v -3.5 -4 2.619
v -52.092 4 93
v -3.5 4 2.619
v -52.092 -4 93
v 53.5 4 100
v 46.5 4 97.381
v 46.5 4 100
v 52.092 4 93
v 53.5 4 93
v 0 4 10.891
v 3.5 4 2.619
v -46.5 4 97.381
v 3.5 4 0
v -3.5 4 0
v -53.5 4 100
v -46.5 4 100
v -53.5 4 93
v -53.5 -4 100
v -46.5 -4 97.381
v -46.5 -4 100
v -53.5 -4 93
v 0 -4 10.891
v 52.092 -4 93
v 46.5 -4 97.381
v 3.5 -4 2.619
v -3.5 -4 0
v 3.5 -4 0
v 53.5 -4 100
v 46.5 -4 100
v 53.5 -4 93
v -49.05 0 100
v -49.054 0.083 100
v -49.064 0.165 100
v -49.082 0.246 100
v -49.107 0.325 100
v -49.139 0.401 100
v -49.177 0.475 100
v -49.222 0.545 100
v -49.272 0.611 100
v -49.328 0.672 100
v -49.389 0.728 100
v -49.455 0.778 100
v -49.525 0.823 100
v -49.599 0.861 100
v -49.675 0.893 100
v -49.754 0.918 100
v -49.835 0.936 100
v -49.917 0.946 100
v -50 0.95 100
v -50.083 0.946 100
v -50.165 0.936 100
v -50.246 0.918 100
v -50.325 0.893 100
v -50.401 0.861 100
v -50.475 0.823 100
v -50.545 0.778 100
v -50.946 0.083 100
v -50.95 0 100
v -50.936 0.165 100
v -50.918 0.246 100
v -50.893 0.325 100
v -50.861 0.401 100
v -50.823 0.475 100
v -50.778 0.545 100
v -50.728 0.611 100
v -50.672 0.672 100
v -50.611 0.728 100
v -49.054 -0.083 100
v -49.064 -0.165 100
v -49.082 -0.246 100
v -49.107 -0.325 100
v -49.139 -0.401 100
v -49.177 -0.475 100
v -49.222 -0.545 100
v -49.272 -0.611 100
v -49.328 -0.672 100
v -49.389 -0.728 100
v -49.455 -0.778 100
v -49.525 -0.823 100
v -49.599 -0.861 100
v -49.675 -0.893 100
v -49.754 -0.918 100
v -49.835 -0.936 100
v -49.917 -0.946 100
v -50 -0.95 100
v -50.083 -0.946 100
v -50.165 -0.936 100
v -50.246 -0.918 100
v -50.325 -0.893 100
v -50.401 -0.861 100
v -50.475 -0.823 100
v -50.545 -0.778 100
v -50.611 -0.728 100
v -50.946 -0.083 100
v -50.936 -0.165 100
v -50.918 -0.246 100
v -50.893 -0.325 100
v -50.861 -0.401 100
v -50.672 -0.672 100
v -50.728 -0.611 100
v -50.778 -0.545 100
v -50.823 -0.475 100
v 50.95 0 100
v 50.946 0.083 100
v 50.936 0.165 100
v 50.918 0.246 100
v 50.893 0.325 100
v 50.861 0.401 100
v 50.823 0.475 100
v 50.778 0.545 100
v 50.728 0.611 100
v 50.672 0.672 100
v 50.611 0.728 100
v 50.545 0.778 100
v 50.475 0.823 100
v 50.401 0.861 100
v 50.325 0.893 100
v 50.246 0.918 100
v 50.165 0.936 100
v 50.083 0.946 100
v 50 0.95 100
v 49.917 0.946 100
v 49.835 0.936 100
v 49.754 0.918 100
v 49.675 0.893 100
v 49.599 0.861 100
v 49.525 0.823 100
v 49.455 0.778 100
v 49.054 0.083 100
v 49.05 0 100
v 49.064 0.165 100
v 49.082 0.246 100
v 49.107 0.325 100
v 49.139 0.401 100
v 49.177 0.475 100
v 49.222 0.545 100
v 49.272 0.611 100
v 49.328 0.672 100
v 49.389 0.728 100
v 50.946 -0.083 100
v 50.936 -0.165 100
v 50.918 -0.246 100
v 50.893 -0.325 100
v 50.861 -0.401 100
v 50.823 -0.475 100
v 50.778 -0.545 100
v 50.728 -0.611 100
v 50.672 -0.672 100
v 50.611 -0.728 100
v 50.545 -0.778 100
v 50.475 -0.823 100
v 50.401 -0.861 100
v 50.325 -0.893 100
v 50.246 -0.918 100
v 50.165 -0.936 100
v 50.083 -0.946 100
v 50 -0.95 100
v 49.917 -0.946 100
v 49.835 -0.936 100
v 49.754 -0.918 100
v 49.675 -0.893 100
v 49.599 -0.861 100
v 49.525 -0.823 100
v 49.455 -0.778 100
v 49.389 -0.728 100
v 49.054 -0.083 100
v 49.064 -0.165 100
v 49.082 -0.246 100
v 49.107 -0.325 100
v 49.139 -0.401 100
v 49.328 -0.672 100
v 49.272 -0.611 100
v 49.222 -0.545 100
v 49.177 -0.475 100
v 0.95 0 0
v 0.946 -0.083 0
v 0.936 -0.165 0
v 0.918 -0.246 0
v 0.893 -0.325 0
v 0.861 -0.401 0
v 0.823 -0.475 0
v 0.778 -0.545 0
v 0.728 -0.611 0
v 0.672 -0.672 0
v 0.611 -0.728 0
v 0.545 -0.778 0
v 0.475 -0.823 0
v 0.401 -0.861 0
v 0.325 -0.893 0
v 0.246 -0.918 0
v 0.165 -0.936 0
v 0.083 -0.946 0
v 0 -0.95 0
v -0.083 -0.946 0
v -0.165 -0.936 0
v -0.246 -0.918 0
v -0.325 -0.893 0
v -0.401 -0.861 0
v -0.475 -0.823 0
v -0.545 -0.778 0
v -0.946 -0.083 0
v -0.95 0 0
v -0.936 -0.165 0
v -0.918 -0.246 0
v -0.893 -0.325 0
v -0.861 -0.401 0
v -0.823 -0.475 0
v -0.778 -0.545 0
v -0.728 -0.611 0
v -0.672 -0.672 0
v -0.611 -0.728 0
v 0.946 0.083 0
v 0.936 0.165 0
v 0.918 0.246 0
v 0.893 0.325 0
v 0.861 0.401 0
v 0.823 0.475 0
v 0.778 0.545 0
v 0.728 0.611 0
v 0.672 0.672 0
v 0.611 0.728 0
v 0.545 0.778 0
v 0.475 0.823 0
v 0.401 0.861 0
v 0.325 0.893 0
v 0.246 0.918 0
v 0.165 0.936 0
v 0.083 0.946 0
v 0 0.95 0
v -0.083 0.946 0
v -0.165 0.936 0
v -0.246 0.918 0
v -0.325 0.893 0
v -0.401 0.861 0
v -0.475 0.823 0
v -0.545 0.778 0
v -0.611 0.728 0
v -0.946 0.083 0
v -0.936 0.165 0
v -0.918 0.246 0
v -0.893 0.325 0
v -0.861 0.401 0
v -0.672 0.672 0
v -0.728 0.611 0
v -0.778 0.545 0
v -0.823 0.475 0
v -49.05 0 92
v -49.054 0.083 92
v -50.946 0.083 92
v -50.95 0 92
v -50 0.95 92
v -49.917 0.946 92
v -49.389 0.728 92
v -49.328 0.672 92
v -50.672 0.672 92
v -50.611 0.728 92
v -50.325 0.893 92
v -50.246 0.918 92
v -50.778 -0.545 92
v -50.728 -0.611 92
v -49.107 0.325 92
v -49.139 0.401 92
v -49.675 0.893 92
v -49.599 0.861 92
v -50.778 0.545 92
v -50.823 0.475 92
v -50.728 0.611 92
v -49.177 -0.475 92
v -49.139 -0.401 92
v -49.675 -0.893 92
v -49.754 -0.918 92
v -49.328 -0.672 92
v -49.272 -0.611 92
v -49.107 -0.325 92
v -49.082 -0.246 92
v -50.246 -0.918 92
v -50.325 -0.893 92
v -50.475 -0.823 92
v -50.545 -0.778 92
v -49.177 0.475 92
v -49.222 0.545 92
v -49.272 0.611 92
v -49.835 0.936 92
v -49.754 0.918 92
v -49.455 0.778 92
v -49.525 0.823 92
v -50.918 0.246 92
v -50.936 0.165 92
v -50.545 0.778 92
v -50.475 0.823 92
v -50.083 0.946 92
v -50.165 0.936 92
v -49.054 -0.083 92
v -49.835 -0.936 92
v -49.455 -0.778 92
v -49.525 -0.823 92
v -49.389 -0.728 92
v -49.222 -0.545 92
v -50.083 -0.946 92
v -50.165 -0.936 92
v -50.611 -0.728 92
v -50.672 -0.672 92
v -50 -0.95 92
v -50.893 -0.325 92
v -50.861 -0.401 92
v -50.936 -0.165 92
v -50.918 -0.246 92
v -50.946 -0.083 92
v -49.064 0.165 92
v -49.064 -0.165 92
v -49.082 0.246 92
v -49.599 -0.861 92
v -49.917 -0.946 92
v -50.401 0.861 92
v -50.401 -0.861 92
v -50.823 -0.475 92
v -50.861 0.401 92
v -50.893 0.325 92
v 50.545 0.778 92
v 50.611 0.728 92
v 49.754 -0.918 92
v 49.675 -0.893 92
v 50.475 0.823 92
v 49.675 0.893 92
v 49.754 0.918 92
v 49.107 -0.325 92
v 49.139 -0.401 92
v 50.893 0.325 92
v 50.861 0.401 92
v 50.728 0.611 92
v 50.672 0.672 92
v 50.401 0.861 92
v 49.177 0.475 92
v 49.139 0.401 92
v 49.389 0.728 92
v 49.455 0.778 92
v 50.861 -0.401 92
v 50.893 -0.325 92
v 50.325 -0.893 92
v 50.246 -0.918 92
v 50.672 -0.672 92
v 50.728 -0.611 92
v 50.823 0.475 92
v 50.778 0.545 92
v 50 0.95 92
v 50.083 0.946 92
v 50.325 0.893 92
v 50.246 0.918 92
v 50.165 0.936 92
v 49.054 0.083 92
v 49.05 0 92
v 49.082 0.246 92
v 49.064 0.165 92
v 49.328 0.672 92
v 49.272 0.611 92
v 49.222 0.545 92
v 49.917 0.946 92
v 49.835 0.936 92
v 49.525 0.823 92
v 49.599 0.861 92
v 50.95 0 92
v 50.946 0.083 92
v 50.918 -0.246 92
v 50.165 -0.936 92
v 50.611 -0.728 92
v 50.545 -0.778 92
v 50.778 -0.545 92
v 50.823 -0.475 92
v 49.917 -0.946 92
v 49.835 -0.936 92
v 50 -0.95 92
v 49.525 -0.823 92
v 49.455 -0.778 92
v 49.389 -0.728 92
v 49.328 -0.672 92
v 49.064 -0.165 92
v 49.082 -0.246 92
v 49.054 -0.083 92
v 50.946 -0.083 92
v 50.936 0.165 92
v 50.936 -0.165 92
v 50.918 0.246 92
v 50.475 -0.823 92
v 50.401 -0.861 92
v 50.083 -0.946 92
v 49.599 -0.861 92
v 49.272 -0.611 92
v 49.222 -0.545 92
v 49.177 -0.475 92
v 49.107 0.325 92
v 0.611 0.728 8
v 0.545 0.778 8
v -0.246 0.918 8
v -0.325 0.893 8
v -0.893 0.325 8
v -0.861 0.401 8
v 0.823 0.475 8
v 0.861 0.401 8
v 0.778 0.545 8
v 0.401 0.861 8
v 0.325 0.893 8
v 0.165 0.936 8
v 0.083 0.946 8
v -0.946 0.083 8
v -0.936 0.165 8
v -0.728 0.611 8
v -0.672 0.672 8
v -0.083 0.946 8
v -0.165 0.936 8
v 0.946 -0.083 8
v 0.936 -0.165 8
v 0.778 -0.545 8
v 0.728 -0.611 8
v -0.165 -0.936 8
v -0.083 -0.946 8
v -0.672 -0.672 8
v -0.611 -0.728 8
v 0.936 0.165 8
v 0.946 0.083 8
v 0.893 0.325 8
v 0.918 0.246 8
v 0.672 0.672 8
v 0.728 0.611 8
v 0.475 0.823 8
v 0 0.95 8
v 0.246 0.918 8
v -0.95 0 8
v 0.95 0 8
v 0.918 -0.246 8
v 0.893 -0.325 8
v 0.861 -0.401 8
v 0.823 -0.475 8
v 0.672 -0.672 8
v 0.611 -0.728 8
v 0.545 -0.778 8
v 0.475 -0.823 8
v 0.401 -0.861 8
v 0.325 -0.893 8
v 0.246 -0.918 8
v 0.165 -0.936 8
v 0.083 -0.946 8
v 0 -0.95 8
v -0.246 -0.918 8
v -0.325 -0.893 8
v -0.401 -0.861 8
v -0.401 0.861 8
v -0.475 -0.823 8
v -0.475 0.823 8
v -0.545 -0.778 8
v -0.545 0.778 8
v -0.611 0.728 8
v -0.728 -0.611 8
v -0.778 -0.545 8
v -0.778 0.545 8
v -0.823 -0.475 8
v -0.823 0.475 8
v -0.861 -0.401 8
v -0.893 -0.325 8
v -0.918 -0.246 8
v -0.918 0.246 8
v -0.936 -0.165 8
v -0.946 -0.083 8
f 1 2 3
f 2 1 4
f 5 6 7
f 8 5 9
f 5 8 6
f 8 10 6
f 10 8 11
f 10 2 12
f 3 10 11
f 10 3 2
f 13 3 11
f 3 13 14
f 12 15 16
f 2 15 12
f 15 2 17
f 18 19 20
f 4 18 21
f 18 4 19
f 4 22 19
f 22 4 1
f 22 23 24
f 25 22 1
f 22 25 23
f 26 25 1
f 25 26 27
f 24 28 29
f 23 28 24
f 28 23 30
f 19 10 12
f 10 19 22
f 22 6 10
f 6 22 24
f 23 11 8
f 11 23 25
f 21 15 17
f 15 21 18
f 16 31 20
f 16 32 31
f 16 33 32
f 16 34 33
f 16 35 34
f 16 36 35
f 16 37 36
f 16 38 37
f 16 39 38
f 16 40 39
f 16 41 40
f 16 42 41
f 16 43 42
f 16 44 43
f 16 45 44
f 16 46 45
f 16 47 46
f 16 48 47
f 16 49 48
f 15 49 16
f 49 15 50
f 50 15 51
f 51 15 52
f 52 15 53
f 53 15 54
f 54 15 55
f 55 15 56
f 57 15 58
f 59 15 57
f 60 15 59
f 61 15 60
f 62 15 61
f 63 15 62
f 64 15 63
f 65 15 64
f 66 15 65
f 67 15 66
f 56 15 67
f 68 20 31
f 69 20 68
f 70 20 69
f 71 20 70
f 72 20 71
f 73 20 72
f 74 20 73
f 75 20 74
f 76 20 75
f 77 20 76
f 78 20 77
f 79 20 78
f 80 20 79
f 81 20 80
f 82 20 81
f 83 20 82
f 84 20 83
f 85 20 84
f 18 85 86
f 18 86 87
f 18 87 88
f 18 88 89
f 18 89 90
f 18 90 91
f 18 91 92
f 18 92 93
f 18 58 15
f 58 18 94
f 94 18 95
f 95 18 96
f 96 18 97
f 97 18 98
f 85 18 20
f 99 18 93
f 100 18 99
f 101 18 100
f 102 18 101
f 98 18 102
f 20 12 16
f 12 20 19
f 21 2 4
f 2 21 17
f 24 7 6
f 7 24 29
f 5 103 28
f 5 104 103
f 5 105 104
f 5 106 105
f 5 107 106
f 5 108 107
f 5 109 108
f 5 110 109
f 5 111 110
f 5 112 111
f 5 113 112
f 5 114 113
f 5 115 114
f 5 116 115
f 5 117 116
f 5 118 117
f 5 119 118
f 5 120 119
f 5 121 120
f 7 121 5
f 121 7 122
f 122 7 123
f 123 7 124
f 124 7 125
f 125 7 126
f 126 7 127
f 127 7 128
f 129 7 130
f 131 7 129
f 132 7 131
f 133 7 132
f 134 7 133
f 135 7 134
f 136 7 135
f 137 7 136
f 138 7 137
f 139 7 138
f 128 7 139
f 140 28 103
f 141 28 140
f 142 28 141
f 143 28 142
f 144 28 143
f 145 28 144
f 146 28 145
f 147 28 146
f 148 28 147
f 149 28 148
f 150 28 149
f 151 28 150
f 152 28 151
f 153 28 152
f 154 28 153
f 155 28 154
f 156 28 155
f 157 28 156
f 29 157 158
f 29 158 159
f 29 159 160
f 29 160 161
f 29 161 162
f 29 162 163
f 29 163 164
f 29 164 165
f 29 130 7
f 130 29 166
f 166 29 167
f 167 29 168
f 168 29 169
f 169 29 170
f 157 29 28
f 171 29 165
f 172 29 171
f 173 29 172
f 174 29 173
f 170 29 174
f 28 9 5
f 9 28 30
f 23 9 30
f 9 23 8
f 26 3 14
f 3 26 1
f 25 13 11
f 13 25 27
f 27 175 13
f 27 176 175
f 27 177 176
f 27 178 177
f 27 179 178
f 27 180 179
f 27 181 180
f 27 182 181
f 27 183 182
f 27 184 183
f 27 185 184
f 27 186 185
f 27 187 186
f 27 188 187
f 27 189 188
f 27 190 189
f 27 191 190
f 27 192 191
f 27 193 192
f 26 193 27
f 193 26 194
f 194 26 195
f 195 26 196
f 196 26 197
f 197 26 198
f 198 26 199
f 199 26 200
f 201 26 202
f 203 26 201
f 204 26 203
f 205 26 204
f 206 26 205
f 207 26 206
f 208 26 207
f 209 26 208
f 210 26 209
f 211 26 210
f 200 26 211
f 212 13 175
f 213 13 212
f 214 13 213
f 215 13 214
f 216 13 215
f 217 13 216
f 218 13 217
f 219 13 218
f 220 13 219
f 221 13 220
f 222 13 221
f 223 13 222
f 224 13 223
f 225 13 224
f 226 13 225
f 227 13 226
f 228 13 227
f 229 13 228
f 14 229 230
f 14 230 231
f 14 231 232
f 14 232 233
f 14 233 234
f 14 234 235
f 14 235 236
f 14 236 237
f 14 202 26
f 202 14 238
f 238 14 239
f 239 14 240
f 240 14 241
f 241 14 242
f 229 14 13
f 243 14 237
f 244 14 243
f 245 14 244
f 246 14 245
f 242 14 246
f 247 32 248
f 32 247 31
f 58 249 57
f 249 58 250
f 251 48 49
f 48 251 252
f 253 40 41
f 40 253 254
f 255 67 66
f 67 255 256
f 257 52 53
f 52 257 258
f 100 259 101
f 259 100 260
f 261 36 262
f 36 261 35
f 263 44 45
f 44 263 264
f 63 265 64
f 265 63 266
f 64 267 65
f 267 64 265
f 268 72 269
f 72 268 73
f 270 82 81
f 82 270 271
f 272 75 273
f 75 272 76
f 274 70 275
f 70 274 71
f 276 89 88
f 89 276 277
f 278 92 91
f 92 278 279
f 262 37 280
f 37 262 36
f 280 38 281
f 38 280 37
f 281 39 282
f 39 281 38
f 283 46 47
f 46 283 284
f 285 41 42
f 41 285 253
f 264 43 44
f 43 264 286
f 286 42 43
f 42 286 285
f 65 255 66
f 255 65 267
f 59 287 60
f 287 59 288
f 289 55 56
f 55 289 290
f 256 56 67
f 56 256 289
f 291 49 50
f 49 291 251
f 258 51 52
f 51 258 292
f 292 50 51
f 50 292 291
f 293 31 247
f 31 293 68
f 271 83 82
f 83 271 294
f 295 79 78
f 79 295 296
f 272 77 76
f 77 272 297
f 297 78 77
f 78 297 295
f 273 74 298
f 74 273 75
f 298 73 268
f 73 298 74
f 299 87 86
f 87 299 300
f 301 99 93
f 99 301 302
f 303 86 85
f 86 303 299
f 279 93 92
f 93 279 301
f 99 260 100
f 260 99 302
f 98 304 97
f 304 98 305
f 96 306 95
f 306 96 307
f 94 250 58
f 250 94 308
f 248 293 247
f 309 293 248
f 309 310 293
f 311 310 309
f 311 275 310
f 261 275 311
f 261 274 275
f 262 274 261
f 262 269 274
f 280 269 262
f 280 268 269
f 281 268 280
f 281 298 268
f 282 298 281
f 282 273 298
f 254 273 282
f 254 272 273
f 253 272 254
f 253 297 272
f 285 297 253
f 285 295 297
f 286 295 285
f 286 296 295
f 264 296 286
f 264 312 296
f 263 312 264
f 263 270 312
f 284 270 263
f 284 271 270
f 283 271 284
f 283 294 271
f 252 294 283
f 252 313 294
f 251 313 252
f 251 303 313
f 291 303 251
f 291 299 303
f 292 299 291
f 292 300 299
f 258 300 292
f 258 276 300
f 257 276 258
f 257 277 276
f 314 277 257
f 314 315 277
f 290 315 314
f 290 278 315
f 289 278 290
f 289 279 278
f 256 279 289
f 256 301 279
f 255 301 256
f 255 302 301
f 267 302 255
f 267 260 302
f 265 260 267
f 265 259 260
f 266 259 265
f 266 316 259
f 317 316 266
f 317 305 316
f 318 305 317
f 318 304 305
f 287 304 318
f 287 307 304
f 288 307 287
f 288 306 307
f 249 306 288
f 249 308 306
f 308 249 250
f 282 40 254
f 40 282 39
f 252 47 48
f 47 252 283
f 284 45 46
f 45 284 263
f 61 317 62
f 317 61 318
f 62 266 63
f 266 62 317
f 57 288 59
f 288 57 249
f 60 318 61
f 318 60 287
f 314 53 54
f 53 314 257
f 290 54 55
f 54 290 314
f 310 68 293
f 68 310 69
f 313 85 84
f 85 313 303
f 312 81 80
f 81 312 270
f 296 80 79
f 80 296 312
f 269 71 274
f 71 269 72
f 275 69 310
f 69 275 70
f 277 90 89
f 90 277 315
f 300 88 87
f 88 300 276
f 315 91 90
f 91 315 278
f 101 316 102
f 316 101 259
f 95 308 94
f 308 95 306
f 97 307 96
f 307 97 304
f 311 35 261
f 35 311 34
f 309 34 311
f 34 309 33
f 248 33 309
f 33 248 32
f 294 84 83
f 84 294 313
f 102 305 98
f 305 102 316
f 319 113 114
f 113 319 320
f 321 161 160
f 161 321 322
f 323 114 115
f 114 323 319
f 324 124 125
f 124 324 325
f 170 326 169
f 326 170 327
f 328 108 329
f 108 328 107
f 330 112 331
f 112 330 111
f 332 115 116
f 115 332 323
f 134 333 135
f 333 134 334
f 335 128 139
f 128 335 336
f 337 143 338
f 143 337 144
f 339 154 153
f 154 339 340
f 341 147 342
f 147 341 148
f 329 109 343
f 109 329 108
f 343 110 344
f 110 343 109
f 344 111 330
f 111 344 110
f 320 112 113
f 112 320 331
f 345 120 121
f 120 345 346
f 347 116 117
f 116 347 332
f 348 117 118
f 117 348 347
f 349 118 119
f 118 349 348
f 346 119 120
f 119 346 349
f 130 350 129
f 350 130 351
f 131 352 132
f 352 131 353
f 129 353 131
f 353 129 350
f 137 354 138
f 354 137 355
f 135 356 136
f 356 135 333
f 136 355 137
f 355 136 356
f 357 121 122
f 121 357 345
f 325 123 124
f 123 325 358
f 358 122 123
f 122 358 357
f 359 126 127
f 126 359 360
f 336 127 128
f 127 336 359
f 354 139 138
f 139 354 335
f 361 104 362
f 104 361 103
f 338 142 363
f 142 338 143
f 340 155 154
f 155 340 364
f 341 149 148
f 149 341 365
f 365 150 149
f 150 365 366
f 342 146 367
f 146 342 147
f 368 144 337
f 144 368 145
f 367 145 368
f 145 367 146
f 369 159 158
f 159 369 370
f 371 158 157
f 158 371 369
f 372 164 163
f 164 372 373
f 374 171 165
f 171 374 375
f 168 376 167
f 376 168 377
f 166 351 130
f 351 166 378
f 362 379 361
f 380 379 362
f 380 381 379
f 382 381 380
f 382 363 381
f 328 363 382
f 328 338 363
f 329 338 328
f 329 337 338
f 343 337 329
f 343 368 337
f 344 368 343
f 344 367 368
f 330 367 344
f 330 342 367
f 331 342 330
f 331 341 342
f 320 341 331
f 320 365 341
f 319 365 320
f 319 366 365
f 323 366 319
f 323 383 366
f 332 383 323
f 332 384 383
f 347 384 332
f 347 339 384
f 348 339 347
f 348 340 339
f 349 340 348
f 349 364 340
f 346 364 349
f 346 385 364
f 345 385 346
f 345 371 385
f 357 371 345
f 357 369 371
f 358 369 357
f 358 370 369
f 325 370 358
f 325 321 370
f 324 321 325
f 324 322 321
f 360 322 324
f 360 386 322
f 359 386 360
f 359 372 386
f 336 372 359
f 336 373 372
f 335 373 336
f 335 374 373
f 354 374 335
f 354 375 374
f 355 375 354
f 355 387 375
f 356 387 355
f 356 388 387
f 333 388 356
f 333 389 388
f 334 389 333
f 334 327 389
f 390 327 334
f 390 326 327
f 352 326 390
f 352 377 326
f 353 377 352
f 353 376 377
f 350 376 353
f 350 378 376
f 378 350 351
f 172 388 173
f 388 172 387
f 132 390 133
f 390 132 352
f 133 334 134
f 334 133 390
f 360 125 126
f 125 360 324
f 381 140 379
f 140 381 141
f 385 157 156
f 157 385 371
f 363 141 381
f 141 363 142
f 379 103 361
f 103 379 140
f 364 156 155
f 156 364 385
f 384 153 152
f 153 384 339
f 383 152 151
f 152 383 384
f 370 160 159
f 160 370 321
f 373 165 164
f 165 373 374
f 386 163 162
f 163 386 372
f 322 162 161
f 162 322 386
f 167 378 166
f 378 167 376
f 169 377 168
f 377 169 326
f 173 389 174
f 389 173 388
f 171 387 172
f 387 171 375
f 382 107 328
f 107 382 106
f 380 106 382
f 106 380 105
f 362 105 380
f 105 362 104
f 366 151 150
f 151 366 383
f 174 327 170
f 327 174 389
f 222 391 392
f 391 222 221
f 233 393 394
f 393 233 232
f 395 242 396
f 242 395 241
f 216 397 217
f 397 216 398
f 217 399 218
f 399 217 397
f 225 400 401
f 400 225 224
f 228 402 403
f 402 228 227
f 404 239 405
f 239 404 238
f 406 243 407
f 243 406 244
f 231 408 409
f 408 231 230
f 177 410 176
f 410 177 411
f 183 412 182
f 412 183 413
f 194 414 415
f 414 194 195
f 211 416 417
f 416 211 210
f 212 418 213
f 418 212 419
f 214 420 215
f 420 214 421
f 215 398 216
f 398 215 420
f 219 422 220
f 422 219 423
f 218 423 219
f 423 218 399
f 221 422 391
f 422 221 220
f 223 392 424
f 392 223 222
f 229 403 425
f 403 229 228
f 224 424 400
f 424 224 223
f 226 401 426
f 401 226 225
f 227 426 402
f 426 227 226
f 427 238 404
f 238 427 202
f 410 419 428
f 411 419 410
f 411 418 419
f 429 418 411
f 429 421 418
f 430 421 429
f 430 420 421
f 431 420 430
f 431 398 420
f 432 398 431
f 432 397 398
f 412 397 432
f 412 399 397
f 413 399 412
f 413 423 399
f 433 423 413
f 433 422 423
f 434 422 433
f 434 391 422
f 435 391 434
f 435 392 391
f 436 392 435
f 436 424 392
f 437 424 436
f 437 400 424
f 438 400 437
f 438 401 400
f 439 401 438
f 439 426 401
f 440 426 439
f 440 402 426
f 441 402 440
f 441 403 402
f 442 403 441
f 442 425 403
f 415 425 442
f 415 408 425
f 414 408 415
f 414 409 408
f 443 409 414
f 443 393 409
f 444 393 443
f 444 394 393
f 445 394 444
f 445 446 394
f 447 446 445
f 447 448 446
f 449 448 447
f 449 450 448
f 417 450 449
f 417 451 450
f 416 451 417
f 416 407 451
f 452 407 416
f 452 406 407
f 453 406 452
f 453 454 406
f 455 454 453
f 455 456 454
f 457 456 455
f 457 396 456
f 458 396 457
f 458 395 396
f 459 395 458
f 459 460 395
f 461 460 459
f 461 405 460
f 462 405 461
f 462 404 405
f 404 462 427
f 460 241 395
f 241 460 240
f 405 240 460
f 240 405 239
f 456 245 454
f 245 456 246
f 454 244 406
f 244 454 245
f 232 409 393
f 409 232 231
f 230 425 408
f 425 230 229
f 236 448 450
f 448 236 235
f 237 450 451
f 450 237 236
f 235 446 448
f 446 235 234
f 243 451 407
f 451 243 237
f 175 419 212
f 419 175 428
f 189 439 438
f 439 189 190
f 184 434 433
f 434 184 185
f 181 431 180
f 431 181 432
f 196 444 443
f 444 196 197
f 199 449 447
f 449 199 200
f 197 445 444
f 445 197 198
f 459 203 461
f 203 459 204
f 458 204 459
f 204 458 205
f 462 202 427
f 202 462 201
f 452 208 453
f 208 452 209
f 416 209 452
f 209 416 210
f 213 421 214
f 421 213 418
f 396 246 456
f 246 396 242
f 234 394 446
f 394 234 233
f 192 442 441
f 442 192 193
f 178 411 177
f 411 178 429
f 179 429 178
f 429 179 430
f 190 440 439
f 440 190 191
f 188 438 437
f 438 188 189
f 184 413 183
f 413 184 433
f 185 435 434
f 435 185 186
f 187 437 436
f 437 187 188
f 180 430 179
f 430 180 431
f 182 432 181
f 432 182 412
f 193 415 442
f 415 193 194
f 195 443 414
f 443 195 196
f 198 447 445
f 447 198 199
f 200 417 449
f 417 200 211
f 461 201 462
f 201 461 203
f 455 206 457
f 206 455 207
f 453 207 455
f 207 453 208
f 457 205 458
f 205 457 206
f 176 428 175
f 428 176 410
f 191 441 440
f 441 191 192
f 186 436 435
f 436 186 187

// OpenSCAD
// OpenSCAD 2021.01 compatible
// Separate V-shaped stilt for carrier lugs.
//
// Revision:
// - Rectangular V legs.
// - Small top and foot stamps are restored, but each stamp is no larger than the leg cross-section.
// - Beam endpoints are placed inside the stamps, so the geometry has intentional overlap and no gaps.
// - Top screw areas remain flat.
// - No wide foot plate.
// - Added centered bottom screw hole from underside into the foot stamp.
// - Screw holes changed from clearance holes to tight pilot holes so 2 mm screws can bite into the printed plastic.

$fn = 72;

// -----------------------------
// Main requested values
// -----------------------------
top_hole_spacing      = 100.0;  // distance between the two lug screw points, center to center
stilt_height          = 100.0;  // ground to top mounting surface height
// Existing carrier lug holes are clearance holes. This stilt needs to catch the screws,
// so the holes in this part are pilot holes, matching the standoff style in the other files.
screw_clearance_ref_d  = 2.3;    // reference only: clearance through carrier lugs for 2 mm screws
screw_pilot_d          = 1.9;    // tight pilot for 2 mm screws to bite into printed plastic

// -----------------------------
// Rectangular stilt geometry
// -----------------------------
leg_xz_thickness      = 7.0;    // rectangular leg thickness in the X/Z side-view profile
leg_y_width           = 8.0;    // front/back width of the stilt

// The top and bottom stamps are intentionally not larger than the leg.
// They provide flat, gap-free endpoints without creating big print-unfriendly blocks.
stamp_x               = leg_xz_thickness;
stamp_y               = leg_y_width;
stamp_z               = leg_xz_thickness;

// Optional screw-head relief from the top side.
// Keep disabled when you want a completely flat screw-contact surface.
head_relief_enabled   = false;
head_relief_d         = 4.2;
head_relief_depth     = 1.4;

// Optional light rectangular crossbar near the top. Keep false for the clean V shape.
top_crossbar_enabled  = false;
top_crossbar_xz       = 5.0;
top_crossbar_y        = 6.0;

// Optional bottom screw hole for later attaching another part to the lower V point.
// This is centered in the foot stamp and also uses a tight pilot hole so a screw can bite later.
bottom_hole_enabled   = true;
bottom_hole_d         = screw_pilot_d;
bottom_hole_depth     = stamp_z + 1.0;  // cuts through the foot stamp with slight cleanup margin

// -----------------------------
// Derived values
// -----------------------------
left_x                = -top_hole_spacing / 2;
right_x               =  top_hole_spacing / 2;
foot_x                = 0;

// Top stamps sit directly below the lug, with the flat top surface at stilt_height.
top_stamp_bottom_z    = stilt_height - stamp_z;
top_stamp_center_z    = top_stamp_bottom_z + stamp_z / 2;

// Foot stamp sits on the ground. It is only the size of the leg section, not a plate.
foot_stamp_bottom_z   = 0;
foot_stamp_center_z   = stamp_z / 2;

// Put the beam centerline endpoints inside the stamps.
// This creates a true OpenSCAD union with positive overlap, preventing tiny gaps.
top_leg_anchor_z      = top_stamp_center_z;
bottom_leg_anchor_z   = foot_stamp_center_z;

// -----------------------------
// Primitive helpers
// -----------------------------
module box_centered(size_vec) {
    cube(size_vec, center = true);
}

module box_from_bottom(center_x, center_y, bottom_z, size_vec) {
    translate([center_x, center_y, bottom_z + size_vec[2] / 2])
        box_centered(size_vec);
}

function beam_poly_2d(p1, p2, t) =
    let(
        dx = p2[0] - p1[0],
        dz = p2[1] - p1[1],
        l  = sqrt(dx * dx + dz * dz),
        nx = -dz / l * t / 2,
        nz =  dx / l * t / 2
    )
    [
        [p1[0] + nx, p1[1] + nz],
        [p2[0] + nx, p2[1] + nz],
        [p2[0] - nx, p2[1] - nz],
        [p1[0] - nx, p1[1] - nz]
    ];

module xz_profile_extruded_y(profile_points, y_width) {
    // Builds an X/Z side-view polygon and extrudes it across Y.
    // rotate([90,0,0]) maps 2D Y to model Z and extrusion Z to model Y.
    rotate([90, 0, 0])
        linear_extrude(height = y_width, center = true, convexity = 4)
            polygon(points = profile_points);
}

// -----------------------------
// Main geometry modules
// -----------------------------
module end_stamp(xc, bottom_z) {
    // Same X/Y/Z envelope as the rectangular leg section.
    // This is the small, printable, fully-connected endpoint requested.
    box_from_bottom(xc, 0, bottom_z, [stamp_x, stamp_y, stamp_z]);
}

module top_mount_hole(xc) {
    translate([xc, 0, top_stamp_bottom_z - 1])
        cylinder(h = stamp_z + 2, d = screw_pilot_d);

    if (head_relief_enabled) {
        translate([xc, 0, stilt_height - head_relief_depth])
            cylinder(h = head_relief_depth + 0.02, d = head_relief_d);
    }
}

module bottom_mount_hole() {
    if (bottom_hole_enabled) {
        // Hole enters from the bottom side and is vertical in Z.
        // It is intentionally a pilot hole, not a clearance hole, so the screw can bite.
        translate([foot_x, 0, -0.5])
            cylinder(h = bottom_hole_depth + 0.5, d = bottom_hole_d);
    }
}

module rectangular_leg(x_top) {
    xz_profile_extruded_y(
        beam_poly_2d(
            [x_top, top_leg_anchor_z],
            [foot_x, bottom_leg_anchor_z],
            leg_xz_thickness
        ),
        leg_y_width
    );
}

module v_legs() {
    rectangular_leg(left_x);
    rectangular_leg(right_x);

    if (top_crossbar_enabled)
        xz_profile_extruded_y(
            beam_poly_2d(
                [left_x, top_leg_anchor_z],
                [right_x, top_leg_anchor_z],
                top_crossbar_xz
            ),
            top_crossbar_y
        );
}

module v_stilt_body_raw() {
    union() {
        // Stamps first, then legs. Endpoints overlap inside the stamps.
        end_stamp(left_x,  top_stamp_bottom_z);
        end_stamp(right_x, top_stamp_bottom_z);
        end_stamp(foot_x,  foot_stamp_bottom_z);
        v_legs();
    }
}

module screw_cutouts() {
    top_mount_hole(left_x);
    top_mount_hole(right_x);
    bottom_mount_hole();
}

module v_stilt() {
    difference() {
        v_stilt_body_raw();
        screw_cutouts();
    }
}

v_stilt();
